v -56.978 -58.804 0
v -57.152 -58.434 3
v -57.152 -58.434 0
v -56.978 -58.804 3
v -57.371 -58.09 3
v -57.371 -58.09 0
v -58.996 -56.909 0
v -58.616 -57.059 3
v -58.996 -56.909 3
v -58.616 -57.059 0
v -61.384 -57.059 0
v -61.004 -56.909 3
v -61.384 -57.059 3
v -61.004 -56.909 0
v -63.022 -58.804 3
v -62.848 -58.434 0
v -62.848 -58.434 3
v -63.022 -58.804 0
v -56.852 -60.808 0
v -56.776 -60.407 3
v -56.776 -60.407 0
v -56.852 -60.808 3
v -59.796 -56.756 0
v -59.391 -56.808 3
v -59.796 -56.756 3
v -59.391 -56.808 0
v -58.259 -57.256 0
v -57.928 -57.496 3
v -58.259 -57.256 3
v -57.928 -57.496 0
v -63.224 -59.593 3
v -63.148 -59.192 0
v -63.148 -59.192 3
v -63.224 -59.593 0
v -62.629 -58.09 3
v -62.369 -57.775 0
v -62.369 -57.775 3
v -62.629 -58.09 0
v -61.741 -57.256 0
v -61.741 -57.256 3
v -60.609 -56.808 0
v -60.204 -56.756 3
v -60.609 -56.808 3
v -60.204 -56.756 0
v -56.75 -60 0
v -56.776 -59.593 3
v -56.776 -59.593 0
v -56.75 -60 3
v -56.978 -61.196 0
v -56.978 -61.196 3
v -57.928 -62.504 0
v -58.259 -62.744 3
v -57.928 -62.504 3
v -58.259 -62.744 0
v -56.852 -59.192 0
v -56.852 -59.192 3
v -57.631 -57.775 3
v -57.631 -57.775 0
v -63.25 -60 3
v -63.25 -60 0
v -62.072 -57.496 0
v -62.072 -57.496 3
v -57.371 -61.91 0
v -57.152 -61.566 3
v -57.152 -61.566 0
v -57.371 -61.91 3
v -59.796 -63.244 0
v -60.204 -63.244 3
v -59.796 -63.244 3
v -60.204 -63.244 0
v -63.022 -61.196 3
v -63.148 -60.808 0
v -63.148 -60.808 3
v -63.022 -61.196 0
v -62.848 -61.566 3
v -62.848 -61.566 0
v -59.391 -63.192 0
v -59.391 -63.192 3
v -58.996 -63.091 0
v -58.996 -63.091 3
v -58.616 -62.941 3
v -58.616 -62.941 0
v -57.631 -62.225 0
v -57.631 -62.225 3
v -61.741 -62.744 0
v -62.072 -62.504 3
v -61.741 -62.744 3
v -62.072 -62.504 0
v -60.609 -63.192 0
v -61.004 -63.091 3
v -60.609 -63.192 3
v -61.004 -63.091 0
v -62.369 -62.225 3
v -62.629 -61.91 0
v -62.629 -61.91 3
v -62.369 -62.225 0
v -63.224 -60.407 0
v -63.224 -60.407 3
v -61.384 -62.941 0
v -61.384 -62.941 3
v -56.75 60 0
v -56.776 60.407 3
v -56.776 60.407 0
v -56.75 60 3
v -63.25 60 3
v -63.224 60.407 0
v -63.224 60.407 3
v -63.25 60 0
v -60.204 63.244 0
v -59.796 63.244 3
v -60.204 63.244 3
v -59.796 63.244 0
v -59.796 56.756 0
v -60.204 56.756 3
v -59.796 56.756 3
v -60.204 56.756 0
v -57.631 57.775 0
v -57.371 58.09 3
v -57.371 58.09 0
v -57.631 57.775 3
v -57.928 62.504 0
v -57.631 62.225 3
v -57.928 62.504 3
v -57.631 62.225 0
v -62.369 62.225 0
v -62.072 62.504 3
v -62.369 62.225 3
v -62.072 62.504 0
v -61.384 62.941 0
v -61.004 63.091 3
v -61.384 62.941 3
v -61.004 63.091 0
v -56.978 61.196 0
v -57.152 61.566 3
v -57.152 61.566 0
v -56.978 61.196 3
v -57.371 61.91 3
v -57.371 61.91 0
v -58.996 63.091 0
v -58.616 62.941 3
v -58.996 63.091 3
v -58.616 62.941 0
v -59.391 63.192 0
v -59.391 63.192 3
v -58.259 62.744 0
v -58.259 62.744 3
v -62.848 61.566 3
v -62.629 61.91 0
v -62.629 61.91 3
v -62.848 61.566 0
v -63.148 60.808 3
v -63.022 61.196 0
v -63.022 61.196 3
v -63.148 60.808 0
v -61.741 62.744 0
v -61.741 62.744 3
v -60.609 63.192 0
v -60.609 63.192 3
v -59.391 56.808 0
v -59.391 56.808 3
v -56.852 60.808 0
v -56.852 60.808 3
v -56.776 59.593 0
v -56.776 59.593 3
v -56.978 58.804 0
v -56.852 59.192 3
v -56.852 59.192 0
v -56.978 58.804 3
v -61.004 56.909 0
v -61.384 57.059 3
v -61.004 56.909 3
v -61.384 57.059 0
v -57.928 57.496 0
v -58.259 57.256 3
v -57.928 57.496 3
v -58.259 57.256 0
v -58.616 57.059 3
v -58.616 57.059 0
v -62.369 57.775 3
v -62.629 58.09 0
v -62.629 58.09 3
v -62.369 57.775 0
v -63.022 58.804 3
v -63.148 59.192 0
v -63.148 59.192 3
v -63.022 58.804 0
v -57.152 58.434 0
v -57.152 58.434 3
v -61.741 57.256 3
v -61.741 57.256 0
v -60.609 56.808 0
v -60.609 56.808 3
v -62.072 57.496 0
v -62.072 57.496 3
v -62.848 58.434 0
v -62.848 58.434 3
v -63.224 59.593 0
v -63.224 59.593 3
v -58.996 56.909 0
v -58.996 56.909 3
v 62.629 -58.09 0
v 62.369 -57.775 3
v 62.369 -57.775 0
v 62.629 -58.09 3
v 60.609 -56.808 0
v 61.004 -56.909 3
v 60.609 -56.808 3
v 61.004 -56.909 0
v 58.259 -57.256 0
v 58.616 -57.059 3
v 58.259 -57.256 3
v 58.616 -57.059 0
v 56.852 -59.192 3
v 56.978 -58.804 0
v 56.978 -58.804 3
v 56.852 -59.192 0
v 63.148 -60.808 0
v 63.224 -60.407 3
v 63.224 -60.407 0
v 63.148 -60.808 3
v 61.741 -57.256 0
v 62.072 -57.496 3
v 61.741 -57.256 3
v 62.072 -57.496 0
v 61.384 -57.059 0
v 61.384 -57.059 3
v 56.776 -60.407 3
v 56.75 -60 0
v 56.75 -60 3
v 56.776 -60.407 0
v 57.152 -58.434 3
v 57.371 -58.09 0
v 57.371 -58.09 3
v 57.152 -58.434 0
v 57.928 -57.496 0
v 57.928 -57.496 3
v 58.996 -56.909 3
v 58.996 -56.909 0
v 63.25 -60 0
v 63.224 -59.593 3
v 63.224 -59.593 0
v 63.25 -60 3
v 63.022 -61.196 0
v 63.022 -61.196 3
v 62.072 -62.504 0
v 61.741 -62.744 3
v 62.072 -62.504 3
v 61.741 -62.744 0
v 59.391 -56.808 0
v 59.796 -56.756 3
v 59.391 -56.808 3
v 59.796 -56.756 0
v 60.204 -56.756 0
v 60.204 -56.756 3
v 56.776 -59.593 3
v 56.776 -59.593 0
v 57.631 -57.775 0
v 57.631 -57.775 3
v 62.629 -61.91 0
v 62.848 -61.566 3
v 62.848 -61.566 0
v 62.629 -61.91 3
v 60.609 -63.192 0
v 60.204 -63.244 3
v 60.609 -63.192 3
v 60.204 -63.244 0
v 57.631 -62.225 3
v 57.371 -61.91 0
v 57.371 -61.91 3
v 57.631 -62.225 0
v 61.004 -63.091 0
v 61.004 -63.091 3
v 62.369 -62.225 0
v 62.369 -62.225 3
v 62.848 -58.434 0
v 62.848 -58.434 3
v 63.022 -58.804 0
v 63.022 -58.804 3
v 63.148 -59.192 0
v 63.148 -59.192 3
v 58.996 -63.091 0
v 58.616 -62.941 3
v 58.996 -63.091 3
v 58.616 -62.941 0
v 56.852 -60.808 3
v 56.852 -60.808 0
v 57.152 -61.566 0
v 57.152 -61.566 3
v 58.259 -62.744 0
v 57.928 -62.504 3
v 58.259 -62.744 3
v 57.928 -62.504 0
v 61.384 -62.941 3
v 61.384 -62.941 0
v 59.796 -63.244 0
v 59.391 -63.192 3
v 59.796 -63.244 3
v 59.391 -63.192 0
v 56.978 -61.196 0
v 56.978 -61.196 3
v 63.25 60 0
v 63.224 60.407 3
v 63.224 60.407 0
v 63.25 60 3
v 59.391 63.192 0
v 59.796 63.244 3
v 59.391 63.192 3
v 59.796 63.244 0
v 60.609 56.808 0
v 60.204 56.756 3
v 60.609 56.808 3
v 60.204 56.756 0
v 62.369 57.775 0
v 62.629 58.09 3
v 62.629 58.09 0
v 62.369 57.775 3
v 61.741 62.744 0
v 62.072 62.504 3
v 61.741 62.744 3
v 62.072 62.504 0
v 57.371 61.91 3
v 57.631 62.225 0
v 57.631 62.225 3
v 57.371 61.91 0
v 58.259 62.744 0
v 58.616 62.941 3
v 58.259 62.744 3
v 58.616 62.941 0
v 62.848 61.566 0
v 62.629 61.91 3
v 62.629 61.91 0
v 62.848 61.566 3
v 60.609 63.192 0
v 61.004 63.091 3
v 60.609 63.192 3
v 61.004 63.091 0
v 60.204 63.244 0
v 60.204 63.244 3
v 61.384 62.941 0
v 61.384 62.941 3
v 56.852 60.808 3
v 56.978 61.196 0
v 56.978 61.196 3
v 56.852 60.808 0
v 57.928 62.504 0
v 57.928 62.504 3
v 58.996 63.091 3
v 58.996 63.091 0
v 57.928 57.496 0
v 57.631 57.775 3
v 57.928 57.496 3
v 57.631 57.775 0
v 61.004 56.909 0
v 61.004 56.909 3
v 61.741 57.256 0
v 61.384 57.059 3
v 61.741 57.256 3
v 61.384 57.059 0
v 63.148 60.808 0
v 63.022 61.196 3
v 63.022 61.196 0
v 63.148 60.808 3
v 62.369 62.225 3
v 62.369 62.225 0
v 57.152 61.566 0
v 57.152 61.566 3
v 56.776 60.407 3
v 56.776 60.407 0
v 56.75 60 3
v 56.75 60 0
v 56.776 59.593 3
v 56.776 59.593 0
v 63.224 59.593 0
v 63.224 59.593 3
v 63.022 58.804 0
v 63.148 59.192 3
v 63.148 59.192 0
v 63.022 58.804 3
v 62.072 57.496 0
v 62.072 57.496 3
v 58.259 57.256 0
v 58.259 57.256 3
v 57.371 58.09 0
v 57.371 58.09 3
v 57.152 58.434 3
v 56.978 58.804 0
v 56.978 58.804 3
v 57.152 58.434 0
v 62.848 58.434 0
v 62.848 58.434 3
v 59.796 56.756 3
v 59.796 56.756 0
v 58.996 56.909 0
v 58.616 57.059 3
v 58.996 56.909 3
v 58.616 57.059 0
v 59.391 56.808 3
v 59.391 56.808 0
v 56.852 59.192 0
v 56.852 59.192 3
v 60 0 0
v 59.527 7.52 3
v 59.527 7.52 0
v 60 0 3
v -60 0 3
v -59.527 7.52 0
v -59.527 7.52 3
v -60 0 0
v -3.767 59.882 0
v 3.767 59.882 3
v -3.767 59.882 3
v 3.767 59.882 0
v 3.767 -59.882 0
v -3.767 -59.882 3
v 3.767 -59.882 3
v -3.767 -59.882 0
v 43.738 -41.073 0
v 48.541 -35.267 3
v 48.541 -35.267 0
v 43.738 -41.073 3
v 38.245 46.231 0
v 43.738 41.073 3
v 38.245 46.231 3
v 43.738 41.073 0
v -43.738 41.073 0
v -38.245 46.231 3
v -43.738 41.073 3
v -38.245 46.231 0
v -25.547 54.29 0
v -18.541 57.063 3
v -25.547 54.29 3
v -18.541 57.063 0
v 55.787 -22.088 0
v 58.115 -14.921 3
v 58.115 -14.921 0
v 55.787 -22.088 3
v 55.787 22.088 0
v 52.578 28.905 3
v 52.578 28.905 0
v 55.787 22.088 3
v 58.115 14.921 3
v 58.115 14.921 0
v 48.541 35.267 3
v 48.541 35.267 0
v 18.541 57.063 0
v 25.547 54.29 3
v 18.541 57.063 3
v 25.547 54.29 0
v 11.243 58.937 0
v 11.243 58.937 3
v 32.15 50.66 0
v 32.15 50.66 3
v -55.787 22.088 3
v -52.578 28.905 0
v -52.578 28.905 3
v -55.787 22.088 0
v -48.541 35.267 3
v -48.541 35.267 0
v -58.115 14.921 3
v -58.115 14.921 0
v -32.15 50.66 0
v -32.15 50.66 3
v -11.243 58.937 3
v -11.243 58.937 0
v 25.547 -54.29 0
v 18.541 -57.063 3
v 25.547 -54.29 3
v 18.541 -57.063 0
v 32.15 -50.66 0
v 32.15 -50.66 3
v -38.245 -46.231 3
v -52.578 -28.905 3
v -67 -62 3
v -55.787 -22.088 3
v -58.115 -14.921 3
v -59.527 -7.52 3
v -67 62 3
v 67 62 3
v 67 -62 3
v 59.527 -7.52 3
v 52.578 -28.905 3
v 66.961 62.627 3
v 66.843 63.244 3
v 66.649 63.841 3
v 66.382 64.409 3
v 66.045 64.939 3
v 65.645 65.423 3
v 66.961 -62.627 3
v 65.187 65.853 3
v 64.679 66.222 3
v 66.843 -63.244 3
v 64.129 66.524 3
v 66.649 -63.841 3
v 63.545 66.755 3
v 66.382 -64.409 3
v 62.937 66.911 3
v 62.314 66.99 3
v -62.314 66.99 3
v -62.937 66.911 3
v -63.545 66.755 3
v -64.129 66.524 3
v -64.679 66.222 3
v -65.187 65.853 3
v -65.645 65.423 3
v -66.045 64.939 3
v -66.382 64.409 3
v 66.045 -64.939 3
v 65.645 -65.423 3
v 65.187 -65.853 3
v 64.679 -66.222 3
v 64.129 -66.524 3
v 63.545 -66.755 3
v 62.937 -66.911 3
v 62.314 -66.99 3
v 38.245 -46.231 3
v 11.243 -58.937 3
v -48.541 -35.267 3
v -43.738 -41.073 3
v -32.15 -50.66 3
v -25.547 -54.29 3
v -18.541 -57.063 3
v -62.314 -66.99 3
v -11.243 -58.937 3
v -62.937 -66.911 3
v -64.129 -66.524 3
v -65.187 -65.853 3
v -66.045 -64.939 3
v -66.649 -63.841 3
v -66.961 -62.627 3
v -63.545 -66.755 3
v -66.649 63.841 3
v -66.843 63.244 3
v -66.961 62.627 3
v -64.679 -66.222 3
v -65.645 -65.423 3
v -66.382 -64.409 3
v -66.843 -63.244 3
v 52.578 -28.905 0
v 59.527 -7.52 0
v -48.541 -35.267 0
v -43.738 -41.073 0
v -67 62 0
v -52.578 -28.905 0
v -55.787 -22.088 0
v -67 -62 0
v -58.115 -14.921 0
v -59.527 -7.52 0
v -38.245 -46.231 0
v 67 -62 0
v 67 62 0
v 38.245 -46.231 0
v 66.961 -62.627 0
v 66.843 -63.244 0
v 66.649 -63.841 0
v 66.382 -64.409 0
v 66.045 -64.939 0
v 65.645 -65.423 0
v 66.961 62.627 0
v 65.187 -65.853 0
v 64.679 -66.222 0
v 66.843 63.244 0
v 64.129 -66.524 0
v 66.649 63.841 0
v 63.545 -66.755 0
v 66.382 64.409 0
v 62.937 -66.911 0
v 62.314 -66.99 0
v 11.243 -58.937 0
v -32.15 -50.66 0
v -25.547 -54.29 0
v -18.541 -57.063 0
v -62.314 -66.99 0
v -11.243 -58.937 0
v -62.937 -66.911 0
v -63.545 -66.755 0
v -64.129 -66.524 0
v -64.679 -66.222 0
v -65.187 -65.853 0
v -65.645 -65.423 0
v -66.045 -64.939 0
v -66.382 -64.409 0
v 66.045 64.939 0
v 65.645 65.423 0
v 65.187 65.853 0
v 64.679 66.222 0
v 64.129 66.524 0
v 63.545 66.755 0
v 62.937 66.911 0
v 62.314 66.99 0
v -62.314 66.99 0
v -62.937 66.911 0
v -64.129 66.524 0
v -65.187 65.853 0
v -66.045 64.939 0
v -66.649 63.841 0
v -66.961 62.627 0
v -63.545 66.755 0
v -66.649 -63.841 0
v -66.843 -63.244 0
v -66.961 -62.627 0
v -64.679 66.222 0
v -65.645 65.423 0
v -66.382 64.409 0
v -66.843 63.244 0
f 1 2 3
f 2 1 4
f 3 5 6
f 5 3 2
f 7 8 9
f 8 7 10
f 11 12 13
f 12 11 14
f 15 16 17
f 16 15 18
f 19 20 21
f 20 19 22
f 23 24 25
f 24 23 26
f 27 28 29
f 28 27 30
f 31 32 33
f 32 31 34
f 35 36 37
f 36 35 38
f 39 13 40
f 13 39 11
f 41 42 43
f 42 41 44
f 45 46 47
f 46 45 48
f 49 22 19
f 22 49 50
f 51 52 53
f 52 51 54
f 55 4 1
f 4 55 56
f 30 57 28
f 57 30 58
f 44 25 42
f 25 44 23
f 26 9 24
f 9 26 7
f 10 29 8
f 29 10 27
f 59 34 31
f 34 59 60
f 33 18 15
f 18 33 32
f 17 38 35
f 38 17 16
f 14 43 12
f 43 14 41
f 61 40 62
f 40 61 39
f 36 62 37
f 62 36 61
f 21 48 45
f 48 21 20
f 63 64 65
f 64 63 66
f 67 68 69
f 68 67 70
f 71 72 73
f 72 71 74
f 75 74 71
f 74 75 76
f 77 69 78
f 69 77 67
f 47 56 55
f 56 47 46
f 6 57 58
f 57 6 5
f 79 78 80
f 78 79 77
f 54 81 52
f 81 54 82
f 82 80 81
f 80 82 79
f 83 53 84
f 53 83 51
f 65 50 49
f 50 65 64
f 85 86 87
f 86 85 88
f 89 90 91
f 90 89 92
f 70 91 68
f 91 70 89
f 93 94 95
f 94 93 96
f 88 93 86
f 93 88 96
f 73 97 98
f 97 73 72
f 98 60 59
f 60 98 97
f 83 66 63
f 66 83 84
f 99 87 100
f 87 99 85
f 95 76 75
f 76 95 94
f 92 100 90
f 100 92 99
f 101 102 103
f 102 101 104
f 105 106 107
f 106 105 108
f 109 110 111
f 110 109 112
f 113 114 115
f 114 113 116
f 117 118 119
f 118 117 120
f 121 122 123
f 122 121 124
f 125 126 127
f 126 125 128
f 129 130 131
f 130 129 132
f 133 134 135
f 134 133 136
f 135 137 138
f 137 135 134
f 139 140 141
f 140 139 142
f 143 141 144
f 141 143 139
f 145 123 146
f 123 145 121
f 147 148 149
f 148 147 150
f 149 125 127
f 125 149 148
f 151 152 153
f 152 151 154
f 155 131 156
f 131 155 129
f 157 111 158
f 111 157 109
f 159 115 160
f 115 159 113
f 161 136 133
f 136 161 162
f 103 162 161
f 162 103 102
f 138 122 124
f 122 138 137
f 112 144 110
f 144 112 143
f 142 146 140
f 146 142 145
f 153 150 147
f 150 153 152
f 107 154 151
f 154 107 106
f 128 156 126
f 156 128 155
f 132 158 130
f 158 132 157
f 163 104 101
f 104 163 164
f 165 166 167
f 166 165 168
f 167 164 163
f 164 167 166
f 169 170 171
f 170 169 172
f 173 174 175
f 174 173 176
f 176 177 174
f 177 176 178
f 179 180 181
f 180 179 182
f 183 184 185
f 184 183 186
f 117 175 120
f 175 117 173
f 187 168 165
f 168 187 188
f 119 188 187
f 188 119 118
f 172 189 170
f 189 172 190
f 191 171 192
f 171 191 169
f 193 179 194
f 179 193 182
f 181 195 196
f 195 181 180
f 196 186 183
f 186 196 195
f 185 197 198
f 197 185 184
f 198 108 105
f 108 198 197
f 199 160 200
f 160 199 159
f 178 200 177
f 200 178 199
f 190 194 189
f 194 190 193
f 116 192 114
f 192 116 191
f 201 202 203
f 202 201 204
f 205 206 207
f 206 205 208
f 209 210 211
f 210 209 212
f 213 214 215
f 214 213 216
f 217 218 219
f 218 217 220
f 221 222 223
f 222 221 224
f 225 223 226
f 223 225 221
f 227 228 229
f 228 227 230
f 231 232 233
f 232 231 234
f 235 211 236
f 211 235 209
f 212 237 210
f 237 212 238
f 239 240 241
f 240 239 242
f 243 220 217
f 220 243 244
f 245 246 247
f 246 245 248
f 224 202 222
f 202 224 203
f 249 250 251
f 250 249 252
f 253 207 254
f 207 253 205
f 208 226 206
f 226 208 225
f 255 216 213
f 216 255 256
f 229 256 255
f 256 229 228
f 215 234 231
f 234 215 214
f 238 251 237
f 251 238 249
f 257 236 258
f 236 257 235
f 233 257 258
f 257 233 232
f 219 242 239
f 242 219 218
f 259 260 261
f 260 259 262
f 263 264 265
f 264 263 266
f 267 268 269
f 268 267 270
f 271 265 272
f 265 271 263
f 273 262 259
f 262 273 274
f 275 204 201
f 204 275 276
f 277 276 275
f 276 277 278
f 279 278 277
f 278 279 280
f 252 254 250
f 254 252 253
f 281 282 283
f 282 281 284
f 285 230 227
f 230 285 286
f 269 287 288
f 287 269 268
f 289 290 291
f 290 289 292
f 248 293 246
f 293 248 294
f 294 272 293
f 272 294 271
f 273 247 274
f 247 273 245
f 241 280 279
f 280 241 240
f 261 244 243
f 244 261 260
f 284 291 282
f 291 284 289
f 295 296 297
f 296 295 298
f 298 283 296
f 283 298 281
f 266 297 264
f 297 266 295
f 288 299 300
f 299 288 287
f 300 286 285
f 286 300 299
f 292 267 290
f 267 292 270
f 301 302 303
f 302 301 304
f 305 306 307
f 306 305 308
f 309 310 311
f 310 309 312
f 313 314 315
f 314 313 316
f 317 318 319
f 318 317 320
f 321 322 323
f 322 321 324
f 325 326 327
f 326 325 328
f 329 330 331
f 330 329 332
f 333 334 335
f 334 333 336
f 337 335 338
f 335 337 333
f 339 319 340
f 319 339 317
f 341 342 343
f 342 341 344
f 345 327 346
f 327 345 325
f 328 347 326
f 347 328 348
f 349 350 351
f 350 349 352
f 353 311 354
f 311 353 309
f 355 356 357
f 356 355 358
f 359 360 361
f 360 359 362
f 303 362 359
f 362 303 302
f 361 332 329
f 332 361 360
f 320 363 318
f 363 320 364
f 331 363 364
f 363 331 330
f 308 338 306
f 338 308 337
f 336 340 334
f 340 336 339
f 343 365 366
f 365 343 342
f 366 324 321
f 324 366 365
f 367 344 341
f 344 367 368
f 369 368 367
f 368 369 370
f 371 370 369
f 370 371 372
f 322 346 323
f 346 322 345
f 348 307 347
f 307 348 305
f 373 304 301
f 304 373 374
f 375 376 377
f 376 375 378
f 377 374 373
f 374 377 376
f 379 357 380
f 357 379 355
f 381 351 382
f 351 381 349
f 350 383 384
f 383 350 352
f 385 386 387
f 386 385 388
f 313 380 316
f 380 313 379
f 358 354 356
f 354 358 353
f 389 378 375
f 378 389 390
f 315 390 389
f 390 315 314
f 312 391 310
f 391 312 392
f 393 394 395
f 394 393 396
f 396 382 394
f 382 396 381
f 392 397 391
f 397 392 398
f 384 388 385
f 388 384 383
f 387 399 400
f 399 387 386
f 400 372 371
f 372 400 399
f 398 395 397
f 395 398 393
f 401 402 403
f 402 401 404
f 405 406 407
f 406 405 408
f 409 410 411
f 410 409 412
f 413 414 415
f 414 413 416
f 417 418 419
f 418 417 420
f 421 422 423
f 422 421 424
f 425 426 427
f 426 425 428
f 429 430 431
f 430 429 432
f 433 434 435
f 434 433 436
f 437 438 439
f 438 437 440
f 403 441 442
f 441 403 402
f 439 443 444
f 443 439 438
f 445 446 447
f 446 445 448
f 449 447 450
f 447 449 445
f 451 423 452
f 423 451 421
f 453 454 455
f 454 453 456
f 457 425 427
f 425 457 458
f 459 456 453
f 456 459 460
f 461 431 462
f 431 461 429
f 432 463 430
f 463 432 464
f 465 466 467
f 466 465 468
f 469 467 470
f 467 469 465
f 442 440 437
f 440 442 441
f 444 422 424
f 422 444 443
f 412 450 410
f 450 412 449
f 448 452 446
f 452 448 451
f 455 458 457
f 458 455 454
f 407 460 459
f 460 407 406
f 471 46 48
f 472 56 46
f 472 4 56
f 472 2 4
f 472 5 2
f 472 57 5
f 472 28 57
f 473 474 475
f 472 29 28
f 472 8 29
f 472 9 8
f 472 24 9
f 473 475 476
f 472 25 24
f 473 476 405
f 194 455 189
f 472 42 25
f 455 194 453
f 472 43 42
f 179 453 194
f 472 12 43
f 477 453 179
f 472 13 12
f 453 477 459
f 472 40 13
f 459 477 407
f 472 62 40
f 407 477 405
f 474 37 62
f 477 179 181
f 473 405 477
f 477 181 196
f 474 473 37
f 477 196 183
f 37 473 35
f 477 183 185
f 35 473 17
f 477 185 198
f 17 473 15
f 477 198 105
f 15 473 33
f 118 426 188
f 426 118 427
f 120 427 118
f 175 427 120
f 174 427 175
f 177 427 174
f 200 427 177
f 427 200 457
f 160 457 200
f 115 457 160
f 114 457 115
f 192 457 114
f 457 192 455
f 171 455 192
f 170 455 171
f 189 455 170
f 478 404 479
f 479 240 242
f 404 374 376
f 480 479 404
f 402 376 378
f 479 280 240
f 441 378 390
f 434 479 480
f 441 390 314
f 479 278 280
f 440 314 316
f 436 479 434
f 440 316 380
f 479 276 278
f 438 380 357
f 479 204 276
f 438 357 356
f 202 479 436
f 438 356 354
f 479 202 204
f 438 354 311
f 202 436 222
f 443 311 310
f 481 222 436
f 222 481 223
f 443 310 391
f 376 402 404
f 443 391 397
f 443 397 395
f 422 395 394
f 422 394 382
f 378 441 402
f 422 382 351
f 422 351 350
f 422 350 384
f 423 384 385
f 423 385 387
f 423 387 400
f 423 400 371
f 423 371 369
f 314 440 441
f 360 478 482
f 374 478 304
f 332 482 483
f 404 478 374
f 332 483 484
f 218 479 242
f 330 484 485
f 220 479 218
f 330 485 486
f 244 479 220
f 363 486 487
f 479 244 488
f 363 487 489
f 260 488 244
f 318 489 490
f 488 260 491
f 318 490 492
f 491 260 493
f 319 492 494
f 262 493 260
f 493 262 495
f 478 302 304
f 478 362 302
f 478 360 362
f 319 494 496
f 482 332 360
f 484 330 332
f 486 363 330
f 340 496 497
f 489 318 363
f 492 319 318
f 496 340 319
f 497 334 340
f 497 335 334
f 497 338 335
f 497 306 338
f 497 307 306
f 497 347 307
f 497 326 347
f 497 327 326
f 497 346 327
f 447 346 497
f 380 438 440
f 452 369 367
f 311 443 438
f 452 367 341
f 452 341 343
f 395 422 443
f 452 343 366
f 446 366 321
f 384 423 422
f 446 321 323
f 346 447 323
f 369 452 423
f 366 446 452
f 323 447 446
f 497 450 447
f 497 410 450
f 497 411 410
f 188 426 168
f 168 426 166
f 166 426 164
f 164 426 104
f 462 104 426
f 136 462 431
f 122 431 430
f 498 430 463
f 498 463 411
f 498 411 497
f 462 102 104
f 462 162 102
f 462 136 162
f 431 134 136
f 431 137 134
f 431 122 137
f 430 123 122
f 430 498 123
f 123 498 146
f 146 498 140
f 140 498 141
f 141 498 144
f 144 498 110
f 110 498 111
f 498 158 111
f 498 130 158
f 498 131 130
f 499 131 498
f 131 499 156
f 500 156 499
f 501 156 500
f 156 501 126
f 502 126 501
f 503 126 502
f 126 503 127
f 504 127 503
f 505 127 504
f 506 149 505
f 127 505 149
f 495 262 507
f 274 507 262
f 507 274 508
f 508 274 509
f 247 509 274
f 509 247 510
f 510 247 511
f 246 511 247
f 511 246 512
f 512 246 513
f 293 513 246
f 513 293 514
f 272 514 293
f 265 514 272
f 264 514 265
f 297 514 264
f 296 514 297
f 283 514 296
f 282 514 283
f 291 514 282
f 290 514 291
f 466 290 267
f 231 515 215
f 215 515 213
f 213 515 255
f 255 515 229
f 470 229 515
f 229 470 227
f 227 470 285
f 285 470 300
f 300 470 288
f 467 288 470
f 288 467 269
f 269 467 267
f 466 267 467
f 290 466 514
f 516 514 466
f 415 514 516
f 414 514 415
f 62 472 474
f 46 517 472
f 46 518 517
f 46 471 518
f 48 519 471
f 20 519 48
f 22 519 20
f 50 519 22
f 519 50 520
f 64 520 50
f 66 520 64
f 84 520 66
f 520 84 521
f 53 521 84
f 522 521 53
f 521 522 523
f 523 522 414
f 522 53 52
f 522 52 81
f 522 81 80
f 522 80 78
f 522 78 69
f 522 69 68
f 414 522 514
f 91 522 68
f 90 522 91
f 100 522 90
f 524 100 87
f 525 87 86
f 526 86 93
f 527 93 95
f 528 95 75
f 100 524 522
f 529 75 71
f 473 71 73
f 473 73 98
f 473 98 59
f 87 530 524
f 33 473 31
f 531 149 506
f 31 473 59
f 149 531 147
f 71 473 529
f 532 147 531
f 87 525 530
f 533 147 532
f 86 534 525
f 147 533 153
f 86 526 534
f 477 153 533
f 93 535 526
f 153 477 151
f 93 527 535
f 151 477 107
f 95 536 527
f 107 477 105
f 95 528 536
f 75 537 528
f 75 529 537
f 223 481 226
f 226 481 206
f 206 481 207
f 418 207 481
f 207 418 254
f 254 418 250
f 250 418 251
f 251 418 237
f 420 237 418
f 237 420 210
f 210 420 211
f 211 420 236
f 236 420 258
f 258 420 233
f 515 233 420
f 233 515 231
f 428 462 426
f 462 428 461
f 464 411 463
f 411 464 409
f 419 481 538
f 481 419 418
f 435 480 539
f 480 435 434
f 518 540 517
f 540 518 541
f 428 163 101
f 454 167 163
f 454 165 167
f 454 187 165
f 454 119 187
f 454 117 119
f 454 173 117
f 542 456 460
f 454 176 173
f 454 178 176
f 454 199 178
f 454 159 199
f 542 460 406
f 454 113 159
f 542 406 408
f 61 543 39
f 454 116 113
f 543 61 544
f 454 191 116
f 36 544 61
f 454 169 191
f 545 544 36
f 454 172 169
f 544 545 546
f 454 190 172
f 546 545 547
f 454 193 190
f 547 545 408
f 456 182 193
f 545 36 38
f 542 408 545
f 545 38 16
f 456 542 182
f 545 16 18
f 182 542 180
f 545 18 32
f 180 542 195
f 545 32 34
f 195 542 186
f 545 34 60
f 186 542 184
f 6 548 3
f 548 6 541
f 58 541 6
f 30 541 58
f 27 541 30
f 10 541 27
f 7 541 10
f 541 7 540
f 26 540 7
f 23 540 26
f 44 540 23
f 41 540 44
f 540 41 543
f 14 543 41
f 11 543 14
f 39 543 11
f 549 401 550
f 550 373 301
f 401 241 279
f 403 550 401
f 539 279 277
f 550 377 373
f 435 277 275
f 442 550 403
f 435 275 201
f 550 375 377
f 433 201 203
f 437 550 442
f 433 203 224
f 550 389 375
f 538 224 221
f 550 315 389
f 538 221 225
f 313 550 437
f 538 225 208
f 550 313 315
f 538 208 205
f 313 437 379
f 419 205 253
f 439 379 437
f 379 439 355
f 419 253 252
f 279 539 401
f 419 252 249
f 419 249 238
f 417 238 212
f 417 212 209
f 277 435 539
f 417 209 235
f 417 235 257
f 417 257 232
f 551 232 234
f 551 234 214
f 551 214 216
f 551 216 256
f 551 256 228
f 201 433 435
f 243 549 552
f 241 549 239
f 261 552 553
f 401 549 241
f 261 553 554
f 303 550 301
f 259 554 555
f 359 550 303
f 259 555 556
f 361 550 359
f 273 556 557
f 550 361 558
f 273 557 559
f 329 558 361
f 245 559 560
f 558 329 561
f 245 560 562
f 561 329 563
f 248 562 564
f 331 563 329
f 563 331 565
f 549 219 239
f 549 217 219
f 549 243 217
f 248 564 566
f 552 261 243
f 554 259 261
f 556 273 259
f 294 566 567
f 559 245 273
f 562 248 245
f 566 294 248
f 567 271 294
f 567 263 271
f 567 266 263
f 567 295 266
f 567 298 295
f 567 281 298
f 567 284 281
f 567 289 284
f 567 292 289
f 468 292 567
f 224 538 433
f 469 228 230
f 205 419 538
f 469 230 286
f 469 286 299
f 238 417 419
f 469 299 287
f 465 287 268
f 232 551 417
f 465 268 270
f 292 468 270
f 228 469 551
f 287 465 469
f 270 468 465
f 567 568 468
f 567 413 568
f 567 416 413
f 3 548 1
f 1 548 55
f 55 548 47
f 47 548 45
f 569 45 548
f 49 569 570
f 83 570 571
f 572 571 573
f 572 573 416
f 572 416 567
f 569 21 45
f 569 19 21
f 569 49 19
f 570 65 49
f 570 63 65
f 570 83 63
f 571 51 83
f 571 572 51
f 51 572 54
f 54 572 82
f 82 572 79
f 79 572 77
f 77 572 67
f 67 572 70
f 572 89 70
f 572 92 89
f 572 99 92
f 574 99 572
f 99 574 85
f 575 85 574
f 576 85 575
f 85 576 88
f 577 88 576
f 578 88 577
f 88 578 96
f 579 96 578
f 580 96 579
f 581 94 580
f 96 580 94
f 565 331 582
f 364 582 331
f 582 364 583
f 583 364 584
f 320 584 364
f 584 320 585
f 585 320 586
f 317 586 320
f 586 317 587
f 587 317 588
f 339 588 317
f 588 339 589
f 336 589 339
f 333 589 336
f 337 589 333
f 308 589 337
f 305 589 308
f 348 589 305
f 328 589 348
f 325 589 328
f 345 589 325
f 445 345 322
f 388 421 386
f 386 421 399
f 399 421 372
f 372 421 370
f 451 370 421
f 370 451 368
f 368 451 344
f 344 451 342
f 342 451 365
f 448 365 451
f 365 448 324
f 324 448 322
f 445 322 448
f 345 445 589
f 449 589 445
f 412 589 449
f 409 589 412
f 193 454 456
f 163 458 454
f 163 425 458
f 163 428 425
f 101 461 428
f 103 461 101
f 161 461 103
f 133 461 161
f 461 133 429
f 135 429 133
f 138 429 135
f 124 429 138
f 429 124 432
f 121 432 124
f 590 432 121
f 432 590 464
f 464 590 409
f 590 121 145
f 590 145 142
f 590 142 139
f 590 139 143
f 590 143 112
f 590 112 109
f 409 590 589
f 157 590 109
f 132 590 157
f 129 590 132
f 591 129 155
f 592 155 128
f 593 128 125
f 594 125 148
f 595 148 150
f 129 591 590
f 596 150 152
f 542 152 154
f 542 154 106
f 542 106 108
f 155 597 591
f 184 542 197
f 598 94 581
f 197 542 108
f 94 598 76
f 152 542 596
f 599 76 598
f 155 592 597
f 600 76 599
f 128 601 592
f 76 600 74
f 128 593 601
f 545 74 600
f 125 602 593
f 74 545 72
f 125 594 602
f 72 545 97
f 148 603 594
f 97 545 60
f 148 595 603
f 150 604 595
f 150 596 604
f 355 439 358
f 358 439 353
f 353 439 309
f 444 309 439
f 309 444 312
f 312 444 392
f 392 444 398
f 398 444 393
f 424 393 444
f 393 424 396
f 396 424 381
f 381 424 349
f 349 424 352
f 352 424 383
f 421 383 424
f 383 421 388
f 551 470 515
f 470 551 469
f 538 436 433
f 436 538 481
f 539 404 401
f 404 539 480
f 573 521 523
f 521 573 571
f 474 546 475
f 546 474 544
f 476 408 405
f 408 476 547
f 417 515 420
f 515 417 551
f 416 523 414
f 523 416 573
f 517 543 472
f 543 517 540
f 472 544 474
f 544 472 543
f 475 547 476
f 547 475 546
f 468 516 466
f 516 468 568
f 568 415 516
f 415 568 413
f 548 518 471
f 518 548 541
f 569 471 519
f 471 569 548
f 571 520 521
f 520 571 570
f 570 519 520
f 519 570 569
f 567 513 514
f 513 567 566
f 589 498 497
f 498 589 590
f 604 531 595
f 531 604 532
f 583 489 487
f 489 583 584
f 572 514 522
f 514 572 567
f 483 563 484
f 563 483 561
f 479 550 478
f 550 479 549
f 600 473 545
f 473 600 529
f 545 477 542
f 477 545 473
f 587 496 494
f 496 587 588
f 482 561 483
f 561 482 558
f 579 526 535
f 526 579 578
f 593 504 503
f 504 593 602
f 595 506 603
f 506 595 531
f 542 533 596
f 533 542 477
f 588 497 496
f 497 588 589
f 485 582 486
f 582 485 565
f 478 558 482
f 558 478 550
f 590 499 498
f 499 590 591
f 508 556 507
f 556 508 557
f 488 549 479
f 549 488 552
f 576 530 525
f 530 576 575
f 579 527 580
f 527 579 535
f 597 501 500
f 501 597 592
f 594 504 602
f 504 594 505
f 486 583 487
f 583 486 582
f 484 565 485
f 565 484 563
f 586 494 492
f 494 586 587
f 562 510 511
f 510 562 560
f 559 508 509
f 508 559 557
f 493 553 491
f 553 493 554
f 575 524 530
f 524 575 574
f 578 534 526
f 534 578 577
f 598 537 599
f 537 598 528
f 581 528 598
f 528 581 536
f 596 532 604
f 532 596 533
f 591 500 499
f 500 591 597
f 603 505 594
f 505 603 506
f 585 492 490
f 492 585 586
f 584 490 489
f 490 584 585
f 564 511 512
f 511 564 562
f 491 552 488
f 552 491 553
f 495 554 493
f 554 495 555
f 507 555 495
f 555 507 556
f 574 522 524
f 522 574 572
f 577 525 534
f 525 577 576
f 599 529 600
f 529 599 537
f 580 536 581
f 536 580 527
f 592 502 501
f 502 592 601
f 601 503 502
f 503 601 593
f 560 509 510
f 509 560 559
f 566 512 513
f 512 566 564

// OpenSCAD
$fn = 50;


difference() {
	union() {
		hull() {
			translate(v = [-62.0000000000, 62.0000000000, 0]) {
				cylinder(h = 3, r = 5);
			}
			translate(v = [62.0000000000, 62.0000000000, 0]) {
				cylinder(h = 3, r = 5);
			}
			translate(v = [-62.0000000000, -62.0000000000, 0]) {
				cylinder(h = 3, r = 5);
			}
			translate(v = [62.0000000000, -62.0000000000, 0]) {
				cylinder(h = 3, r = 5);
			}
		}
	}
	union() {
		#translate(v = [-60.0000000000, -60.0000000000, -100.0000000000]) {
			cylinder(h = 200, r = 3.2500000000);
		}
		#translate(v = [-60.0000000000, 60.0000000000, -100.0000000000]) {
			cylinder(h = 200, r = 3.2500000000);
		}
		#translate(v = [60.0000000000, -60.0000000000, -100.0000000000]) {
			cylinder(h = 200, r = 3.2500000000);
		}
		#translate(v = [60.0000000000, 60.0000000000, -100.0000000000]) {
			cylinder(h = 200, r = 3.2500000000);
		}
		#cylinder(h = 3, r = 60.0000000000);
	}
}
